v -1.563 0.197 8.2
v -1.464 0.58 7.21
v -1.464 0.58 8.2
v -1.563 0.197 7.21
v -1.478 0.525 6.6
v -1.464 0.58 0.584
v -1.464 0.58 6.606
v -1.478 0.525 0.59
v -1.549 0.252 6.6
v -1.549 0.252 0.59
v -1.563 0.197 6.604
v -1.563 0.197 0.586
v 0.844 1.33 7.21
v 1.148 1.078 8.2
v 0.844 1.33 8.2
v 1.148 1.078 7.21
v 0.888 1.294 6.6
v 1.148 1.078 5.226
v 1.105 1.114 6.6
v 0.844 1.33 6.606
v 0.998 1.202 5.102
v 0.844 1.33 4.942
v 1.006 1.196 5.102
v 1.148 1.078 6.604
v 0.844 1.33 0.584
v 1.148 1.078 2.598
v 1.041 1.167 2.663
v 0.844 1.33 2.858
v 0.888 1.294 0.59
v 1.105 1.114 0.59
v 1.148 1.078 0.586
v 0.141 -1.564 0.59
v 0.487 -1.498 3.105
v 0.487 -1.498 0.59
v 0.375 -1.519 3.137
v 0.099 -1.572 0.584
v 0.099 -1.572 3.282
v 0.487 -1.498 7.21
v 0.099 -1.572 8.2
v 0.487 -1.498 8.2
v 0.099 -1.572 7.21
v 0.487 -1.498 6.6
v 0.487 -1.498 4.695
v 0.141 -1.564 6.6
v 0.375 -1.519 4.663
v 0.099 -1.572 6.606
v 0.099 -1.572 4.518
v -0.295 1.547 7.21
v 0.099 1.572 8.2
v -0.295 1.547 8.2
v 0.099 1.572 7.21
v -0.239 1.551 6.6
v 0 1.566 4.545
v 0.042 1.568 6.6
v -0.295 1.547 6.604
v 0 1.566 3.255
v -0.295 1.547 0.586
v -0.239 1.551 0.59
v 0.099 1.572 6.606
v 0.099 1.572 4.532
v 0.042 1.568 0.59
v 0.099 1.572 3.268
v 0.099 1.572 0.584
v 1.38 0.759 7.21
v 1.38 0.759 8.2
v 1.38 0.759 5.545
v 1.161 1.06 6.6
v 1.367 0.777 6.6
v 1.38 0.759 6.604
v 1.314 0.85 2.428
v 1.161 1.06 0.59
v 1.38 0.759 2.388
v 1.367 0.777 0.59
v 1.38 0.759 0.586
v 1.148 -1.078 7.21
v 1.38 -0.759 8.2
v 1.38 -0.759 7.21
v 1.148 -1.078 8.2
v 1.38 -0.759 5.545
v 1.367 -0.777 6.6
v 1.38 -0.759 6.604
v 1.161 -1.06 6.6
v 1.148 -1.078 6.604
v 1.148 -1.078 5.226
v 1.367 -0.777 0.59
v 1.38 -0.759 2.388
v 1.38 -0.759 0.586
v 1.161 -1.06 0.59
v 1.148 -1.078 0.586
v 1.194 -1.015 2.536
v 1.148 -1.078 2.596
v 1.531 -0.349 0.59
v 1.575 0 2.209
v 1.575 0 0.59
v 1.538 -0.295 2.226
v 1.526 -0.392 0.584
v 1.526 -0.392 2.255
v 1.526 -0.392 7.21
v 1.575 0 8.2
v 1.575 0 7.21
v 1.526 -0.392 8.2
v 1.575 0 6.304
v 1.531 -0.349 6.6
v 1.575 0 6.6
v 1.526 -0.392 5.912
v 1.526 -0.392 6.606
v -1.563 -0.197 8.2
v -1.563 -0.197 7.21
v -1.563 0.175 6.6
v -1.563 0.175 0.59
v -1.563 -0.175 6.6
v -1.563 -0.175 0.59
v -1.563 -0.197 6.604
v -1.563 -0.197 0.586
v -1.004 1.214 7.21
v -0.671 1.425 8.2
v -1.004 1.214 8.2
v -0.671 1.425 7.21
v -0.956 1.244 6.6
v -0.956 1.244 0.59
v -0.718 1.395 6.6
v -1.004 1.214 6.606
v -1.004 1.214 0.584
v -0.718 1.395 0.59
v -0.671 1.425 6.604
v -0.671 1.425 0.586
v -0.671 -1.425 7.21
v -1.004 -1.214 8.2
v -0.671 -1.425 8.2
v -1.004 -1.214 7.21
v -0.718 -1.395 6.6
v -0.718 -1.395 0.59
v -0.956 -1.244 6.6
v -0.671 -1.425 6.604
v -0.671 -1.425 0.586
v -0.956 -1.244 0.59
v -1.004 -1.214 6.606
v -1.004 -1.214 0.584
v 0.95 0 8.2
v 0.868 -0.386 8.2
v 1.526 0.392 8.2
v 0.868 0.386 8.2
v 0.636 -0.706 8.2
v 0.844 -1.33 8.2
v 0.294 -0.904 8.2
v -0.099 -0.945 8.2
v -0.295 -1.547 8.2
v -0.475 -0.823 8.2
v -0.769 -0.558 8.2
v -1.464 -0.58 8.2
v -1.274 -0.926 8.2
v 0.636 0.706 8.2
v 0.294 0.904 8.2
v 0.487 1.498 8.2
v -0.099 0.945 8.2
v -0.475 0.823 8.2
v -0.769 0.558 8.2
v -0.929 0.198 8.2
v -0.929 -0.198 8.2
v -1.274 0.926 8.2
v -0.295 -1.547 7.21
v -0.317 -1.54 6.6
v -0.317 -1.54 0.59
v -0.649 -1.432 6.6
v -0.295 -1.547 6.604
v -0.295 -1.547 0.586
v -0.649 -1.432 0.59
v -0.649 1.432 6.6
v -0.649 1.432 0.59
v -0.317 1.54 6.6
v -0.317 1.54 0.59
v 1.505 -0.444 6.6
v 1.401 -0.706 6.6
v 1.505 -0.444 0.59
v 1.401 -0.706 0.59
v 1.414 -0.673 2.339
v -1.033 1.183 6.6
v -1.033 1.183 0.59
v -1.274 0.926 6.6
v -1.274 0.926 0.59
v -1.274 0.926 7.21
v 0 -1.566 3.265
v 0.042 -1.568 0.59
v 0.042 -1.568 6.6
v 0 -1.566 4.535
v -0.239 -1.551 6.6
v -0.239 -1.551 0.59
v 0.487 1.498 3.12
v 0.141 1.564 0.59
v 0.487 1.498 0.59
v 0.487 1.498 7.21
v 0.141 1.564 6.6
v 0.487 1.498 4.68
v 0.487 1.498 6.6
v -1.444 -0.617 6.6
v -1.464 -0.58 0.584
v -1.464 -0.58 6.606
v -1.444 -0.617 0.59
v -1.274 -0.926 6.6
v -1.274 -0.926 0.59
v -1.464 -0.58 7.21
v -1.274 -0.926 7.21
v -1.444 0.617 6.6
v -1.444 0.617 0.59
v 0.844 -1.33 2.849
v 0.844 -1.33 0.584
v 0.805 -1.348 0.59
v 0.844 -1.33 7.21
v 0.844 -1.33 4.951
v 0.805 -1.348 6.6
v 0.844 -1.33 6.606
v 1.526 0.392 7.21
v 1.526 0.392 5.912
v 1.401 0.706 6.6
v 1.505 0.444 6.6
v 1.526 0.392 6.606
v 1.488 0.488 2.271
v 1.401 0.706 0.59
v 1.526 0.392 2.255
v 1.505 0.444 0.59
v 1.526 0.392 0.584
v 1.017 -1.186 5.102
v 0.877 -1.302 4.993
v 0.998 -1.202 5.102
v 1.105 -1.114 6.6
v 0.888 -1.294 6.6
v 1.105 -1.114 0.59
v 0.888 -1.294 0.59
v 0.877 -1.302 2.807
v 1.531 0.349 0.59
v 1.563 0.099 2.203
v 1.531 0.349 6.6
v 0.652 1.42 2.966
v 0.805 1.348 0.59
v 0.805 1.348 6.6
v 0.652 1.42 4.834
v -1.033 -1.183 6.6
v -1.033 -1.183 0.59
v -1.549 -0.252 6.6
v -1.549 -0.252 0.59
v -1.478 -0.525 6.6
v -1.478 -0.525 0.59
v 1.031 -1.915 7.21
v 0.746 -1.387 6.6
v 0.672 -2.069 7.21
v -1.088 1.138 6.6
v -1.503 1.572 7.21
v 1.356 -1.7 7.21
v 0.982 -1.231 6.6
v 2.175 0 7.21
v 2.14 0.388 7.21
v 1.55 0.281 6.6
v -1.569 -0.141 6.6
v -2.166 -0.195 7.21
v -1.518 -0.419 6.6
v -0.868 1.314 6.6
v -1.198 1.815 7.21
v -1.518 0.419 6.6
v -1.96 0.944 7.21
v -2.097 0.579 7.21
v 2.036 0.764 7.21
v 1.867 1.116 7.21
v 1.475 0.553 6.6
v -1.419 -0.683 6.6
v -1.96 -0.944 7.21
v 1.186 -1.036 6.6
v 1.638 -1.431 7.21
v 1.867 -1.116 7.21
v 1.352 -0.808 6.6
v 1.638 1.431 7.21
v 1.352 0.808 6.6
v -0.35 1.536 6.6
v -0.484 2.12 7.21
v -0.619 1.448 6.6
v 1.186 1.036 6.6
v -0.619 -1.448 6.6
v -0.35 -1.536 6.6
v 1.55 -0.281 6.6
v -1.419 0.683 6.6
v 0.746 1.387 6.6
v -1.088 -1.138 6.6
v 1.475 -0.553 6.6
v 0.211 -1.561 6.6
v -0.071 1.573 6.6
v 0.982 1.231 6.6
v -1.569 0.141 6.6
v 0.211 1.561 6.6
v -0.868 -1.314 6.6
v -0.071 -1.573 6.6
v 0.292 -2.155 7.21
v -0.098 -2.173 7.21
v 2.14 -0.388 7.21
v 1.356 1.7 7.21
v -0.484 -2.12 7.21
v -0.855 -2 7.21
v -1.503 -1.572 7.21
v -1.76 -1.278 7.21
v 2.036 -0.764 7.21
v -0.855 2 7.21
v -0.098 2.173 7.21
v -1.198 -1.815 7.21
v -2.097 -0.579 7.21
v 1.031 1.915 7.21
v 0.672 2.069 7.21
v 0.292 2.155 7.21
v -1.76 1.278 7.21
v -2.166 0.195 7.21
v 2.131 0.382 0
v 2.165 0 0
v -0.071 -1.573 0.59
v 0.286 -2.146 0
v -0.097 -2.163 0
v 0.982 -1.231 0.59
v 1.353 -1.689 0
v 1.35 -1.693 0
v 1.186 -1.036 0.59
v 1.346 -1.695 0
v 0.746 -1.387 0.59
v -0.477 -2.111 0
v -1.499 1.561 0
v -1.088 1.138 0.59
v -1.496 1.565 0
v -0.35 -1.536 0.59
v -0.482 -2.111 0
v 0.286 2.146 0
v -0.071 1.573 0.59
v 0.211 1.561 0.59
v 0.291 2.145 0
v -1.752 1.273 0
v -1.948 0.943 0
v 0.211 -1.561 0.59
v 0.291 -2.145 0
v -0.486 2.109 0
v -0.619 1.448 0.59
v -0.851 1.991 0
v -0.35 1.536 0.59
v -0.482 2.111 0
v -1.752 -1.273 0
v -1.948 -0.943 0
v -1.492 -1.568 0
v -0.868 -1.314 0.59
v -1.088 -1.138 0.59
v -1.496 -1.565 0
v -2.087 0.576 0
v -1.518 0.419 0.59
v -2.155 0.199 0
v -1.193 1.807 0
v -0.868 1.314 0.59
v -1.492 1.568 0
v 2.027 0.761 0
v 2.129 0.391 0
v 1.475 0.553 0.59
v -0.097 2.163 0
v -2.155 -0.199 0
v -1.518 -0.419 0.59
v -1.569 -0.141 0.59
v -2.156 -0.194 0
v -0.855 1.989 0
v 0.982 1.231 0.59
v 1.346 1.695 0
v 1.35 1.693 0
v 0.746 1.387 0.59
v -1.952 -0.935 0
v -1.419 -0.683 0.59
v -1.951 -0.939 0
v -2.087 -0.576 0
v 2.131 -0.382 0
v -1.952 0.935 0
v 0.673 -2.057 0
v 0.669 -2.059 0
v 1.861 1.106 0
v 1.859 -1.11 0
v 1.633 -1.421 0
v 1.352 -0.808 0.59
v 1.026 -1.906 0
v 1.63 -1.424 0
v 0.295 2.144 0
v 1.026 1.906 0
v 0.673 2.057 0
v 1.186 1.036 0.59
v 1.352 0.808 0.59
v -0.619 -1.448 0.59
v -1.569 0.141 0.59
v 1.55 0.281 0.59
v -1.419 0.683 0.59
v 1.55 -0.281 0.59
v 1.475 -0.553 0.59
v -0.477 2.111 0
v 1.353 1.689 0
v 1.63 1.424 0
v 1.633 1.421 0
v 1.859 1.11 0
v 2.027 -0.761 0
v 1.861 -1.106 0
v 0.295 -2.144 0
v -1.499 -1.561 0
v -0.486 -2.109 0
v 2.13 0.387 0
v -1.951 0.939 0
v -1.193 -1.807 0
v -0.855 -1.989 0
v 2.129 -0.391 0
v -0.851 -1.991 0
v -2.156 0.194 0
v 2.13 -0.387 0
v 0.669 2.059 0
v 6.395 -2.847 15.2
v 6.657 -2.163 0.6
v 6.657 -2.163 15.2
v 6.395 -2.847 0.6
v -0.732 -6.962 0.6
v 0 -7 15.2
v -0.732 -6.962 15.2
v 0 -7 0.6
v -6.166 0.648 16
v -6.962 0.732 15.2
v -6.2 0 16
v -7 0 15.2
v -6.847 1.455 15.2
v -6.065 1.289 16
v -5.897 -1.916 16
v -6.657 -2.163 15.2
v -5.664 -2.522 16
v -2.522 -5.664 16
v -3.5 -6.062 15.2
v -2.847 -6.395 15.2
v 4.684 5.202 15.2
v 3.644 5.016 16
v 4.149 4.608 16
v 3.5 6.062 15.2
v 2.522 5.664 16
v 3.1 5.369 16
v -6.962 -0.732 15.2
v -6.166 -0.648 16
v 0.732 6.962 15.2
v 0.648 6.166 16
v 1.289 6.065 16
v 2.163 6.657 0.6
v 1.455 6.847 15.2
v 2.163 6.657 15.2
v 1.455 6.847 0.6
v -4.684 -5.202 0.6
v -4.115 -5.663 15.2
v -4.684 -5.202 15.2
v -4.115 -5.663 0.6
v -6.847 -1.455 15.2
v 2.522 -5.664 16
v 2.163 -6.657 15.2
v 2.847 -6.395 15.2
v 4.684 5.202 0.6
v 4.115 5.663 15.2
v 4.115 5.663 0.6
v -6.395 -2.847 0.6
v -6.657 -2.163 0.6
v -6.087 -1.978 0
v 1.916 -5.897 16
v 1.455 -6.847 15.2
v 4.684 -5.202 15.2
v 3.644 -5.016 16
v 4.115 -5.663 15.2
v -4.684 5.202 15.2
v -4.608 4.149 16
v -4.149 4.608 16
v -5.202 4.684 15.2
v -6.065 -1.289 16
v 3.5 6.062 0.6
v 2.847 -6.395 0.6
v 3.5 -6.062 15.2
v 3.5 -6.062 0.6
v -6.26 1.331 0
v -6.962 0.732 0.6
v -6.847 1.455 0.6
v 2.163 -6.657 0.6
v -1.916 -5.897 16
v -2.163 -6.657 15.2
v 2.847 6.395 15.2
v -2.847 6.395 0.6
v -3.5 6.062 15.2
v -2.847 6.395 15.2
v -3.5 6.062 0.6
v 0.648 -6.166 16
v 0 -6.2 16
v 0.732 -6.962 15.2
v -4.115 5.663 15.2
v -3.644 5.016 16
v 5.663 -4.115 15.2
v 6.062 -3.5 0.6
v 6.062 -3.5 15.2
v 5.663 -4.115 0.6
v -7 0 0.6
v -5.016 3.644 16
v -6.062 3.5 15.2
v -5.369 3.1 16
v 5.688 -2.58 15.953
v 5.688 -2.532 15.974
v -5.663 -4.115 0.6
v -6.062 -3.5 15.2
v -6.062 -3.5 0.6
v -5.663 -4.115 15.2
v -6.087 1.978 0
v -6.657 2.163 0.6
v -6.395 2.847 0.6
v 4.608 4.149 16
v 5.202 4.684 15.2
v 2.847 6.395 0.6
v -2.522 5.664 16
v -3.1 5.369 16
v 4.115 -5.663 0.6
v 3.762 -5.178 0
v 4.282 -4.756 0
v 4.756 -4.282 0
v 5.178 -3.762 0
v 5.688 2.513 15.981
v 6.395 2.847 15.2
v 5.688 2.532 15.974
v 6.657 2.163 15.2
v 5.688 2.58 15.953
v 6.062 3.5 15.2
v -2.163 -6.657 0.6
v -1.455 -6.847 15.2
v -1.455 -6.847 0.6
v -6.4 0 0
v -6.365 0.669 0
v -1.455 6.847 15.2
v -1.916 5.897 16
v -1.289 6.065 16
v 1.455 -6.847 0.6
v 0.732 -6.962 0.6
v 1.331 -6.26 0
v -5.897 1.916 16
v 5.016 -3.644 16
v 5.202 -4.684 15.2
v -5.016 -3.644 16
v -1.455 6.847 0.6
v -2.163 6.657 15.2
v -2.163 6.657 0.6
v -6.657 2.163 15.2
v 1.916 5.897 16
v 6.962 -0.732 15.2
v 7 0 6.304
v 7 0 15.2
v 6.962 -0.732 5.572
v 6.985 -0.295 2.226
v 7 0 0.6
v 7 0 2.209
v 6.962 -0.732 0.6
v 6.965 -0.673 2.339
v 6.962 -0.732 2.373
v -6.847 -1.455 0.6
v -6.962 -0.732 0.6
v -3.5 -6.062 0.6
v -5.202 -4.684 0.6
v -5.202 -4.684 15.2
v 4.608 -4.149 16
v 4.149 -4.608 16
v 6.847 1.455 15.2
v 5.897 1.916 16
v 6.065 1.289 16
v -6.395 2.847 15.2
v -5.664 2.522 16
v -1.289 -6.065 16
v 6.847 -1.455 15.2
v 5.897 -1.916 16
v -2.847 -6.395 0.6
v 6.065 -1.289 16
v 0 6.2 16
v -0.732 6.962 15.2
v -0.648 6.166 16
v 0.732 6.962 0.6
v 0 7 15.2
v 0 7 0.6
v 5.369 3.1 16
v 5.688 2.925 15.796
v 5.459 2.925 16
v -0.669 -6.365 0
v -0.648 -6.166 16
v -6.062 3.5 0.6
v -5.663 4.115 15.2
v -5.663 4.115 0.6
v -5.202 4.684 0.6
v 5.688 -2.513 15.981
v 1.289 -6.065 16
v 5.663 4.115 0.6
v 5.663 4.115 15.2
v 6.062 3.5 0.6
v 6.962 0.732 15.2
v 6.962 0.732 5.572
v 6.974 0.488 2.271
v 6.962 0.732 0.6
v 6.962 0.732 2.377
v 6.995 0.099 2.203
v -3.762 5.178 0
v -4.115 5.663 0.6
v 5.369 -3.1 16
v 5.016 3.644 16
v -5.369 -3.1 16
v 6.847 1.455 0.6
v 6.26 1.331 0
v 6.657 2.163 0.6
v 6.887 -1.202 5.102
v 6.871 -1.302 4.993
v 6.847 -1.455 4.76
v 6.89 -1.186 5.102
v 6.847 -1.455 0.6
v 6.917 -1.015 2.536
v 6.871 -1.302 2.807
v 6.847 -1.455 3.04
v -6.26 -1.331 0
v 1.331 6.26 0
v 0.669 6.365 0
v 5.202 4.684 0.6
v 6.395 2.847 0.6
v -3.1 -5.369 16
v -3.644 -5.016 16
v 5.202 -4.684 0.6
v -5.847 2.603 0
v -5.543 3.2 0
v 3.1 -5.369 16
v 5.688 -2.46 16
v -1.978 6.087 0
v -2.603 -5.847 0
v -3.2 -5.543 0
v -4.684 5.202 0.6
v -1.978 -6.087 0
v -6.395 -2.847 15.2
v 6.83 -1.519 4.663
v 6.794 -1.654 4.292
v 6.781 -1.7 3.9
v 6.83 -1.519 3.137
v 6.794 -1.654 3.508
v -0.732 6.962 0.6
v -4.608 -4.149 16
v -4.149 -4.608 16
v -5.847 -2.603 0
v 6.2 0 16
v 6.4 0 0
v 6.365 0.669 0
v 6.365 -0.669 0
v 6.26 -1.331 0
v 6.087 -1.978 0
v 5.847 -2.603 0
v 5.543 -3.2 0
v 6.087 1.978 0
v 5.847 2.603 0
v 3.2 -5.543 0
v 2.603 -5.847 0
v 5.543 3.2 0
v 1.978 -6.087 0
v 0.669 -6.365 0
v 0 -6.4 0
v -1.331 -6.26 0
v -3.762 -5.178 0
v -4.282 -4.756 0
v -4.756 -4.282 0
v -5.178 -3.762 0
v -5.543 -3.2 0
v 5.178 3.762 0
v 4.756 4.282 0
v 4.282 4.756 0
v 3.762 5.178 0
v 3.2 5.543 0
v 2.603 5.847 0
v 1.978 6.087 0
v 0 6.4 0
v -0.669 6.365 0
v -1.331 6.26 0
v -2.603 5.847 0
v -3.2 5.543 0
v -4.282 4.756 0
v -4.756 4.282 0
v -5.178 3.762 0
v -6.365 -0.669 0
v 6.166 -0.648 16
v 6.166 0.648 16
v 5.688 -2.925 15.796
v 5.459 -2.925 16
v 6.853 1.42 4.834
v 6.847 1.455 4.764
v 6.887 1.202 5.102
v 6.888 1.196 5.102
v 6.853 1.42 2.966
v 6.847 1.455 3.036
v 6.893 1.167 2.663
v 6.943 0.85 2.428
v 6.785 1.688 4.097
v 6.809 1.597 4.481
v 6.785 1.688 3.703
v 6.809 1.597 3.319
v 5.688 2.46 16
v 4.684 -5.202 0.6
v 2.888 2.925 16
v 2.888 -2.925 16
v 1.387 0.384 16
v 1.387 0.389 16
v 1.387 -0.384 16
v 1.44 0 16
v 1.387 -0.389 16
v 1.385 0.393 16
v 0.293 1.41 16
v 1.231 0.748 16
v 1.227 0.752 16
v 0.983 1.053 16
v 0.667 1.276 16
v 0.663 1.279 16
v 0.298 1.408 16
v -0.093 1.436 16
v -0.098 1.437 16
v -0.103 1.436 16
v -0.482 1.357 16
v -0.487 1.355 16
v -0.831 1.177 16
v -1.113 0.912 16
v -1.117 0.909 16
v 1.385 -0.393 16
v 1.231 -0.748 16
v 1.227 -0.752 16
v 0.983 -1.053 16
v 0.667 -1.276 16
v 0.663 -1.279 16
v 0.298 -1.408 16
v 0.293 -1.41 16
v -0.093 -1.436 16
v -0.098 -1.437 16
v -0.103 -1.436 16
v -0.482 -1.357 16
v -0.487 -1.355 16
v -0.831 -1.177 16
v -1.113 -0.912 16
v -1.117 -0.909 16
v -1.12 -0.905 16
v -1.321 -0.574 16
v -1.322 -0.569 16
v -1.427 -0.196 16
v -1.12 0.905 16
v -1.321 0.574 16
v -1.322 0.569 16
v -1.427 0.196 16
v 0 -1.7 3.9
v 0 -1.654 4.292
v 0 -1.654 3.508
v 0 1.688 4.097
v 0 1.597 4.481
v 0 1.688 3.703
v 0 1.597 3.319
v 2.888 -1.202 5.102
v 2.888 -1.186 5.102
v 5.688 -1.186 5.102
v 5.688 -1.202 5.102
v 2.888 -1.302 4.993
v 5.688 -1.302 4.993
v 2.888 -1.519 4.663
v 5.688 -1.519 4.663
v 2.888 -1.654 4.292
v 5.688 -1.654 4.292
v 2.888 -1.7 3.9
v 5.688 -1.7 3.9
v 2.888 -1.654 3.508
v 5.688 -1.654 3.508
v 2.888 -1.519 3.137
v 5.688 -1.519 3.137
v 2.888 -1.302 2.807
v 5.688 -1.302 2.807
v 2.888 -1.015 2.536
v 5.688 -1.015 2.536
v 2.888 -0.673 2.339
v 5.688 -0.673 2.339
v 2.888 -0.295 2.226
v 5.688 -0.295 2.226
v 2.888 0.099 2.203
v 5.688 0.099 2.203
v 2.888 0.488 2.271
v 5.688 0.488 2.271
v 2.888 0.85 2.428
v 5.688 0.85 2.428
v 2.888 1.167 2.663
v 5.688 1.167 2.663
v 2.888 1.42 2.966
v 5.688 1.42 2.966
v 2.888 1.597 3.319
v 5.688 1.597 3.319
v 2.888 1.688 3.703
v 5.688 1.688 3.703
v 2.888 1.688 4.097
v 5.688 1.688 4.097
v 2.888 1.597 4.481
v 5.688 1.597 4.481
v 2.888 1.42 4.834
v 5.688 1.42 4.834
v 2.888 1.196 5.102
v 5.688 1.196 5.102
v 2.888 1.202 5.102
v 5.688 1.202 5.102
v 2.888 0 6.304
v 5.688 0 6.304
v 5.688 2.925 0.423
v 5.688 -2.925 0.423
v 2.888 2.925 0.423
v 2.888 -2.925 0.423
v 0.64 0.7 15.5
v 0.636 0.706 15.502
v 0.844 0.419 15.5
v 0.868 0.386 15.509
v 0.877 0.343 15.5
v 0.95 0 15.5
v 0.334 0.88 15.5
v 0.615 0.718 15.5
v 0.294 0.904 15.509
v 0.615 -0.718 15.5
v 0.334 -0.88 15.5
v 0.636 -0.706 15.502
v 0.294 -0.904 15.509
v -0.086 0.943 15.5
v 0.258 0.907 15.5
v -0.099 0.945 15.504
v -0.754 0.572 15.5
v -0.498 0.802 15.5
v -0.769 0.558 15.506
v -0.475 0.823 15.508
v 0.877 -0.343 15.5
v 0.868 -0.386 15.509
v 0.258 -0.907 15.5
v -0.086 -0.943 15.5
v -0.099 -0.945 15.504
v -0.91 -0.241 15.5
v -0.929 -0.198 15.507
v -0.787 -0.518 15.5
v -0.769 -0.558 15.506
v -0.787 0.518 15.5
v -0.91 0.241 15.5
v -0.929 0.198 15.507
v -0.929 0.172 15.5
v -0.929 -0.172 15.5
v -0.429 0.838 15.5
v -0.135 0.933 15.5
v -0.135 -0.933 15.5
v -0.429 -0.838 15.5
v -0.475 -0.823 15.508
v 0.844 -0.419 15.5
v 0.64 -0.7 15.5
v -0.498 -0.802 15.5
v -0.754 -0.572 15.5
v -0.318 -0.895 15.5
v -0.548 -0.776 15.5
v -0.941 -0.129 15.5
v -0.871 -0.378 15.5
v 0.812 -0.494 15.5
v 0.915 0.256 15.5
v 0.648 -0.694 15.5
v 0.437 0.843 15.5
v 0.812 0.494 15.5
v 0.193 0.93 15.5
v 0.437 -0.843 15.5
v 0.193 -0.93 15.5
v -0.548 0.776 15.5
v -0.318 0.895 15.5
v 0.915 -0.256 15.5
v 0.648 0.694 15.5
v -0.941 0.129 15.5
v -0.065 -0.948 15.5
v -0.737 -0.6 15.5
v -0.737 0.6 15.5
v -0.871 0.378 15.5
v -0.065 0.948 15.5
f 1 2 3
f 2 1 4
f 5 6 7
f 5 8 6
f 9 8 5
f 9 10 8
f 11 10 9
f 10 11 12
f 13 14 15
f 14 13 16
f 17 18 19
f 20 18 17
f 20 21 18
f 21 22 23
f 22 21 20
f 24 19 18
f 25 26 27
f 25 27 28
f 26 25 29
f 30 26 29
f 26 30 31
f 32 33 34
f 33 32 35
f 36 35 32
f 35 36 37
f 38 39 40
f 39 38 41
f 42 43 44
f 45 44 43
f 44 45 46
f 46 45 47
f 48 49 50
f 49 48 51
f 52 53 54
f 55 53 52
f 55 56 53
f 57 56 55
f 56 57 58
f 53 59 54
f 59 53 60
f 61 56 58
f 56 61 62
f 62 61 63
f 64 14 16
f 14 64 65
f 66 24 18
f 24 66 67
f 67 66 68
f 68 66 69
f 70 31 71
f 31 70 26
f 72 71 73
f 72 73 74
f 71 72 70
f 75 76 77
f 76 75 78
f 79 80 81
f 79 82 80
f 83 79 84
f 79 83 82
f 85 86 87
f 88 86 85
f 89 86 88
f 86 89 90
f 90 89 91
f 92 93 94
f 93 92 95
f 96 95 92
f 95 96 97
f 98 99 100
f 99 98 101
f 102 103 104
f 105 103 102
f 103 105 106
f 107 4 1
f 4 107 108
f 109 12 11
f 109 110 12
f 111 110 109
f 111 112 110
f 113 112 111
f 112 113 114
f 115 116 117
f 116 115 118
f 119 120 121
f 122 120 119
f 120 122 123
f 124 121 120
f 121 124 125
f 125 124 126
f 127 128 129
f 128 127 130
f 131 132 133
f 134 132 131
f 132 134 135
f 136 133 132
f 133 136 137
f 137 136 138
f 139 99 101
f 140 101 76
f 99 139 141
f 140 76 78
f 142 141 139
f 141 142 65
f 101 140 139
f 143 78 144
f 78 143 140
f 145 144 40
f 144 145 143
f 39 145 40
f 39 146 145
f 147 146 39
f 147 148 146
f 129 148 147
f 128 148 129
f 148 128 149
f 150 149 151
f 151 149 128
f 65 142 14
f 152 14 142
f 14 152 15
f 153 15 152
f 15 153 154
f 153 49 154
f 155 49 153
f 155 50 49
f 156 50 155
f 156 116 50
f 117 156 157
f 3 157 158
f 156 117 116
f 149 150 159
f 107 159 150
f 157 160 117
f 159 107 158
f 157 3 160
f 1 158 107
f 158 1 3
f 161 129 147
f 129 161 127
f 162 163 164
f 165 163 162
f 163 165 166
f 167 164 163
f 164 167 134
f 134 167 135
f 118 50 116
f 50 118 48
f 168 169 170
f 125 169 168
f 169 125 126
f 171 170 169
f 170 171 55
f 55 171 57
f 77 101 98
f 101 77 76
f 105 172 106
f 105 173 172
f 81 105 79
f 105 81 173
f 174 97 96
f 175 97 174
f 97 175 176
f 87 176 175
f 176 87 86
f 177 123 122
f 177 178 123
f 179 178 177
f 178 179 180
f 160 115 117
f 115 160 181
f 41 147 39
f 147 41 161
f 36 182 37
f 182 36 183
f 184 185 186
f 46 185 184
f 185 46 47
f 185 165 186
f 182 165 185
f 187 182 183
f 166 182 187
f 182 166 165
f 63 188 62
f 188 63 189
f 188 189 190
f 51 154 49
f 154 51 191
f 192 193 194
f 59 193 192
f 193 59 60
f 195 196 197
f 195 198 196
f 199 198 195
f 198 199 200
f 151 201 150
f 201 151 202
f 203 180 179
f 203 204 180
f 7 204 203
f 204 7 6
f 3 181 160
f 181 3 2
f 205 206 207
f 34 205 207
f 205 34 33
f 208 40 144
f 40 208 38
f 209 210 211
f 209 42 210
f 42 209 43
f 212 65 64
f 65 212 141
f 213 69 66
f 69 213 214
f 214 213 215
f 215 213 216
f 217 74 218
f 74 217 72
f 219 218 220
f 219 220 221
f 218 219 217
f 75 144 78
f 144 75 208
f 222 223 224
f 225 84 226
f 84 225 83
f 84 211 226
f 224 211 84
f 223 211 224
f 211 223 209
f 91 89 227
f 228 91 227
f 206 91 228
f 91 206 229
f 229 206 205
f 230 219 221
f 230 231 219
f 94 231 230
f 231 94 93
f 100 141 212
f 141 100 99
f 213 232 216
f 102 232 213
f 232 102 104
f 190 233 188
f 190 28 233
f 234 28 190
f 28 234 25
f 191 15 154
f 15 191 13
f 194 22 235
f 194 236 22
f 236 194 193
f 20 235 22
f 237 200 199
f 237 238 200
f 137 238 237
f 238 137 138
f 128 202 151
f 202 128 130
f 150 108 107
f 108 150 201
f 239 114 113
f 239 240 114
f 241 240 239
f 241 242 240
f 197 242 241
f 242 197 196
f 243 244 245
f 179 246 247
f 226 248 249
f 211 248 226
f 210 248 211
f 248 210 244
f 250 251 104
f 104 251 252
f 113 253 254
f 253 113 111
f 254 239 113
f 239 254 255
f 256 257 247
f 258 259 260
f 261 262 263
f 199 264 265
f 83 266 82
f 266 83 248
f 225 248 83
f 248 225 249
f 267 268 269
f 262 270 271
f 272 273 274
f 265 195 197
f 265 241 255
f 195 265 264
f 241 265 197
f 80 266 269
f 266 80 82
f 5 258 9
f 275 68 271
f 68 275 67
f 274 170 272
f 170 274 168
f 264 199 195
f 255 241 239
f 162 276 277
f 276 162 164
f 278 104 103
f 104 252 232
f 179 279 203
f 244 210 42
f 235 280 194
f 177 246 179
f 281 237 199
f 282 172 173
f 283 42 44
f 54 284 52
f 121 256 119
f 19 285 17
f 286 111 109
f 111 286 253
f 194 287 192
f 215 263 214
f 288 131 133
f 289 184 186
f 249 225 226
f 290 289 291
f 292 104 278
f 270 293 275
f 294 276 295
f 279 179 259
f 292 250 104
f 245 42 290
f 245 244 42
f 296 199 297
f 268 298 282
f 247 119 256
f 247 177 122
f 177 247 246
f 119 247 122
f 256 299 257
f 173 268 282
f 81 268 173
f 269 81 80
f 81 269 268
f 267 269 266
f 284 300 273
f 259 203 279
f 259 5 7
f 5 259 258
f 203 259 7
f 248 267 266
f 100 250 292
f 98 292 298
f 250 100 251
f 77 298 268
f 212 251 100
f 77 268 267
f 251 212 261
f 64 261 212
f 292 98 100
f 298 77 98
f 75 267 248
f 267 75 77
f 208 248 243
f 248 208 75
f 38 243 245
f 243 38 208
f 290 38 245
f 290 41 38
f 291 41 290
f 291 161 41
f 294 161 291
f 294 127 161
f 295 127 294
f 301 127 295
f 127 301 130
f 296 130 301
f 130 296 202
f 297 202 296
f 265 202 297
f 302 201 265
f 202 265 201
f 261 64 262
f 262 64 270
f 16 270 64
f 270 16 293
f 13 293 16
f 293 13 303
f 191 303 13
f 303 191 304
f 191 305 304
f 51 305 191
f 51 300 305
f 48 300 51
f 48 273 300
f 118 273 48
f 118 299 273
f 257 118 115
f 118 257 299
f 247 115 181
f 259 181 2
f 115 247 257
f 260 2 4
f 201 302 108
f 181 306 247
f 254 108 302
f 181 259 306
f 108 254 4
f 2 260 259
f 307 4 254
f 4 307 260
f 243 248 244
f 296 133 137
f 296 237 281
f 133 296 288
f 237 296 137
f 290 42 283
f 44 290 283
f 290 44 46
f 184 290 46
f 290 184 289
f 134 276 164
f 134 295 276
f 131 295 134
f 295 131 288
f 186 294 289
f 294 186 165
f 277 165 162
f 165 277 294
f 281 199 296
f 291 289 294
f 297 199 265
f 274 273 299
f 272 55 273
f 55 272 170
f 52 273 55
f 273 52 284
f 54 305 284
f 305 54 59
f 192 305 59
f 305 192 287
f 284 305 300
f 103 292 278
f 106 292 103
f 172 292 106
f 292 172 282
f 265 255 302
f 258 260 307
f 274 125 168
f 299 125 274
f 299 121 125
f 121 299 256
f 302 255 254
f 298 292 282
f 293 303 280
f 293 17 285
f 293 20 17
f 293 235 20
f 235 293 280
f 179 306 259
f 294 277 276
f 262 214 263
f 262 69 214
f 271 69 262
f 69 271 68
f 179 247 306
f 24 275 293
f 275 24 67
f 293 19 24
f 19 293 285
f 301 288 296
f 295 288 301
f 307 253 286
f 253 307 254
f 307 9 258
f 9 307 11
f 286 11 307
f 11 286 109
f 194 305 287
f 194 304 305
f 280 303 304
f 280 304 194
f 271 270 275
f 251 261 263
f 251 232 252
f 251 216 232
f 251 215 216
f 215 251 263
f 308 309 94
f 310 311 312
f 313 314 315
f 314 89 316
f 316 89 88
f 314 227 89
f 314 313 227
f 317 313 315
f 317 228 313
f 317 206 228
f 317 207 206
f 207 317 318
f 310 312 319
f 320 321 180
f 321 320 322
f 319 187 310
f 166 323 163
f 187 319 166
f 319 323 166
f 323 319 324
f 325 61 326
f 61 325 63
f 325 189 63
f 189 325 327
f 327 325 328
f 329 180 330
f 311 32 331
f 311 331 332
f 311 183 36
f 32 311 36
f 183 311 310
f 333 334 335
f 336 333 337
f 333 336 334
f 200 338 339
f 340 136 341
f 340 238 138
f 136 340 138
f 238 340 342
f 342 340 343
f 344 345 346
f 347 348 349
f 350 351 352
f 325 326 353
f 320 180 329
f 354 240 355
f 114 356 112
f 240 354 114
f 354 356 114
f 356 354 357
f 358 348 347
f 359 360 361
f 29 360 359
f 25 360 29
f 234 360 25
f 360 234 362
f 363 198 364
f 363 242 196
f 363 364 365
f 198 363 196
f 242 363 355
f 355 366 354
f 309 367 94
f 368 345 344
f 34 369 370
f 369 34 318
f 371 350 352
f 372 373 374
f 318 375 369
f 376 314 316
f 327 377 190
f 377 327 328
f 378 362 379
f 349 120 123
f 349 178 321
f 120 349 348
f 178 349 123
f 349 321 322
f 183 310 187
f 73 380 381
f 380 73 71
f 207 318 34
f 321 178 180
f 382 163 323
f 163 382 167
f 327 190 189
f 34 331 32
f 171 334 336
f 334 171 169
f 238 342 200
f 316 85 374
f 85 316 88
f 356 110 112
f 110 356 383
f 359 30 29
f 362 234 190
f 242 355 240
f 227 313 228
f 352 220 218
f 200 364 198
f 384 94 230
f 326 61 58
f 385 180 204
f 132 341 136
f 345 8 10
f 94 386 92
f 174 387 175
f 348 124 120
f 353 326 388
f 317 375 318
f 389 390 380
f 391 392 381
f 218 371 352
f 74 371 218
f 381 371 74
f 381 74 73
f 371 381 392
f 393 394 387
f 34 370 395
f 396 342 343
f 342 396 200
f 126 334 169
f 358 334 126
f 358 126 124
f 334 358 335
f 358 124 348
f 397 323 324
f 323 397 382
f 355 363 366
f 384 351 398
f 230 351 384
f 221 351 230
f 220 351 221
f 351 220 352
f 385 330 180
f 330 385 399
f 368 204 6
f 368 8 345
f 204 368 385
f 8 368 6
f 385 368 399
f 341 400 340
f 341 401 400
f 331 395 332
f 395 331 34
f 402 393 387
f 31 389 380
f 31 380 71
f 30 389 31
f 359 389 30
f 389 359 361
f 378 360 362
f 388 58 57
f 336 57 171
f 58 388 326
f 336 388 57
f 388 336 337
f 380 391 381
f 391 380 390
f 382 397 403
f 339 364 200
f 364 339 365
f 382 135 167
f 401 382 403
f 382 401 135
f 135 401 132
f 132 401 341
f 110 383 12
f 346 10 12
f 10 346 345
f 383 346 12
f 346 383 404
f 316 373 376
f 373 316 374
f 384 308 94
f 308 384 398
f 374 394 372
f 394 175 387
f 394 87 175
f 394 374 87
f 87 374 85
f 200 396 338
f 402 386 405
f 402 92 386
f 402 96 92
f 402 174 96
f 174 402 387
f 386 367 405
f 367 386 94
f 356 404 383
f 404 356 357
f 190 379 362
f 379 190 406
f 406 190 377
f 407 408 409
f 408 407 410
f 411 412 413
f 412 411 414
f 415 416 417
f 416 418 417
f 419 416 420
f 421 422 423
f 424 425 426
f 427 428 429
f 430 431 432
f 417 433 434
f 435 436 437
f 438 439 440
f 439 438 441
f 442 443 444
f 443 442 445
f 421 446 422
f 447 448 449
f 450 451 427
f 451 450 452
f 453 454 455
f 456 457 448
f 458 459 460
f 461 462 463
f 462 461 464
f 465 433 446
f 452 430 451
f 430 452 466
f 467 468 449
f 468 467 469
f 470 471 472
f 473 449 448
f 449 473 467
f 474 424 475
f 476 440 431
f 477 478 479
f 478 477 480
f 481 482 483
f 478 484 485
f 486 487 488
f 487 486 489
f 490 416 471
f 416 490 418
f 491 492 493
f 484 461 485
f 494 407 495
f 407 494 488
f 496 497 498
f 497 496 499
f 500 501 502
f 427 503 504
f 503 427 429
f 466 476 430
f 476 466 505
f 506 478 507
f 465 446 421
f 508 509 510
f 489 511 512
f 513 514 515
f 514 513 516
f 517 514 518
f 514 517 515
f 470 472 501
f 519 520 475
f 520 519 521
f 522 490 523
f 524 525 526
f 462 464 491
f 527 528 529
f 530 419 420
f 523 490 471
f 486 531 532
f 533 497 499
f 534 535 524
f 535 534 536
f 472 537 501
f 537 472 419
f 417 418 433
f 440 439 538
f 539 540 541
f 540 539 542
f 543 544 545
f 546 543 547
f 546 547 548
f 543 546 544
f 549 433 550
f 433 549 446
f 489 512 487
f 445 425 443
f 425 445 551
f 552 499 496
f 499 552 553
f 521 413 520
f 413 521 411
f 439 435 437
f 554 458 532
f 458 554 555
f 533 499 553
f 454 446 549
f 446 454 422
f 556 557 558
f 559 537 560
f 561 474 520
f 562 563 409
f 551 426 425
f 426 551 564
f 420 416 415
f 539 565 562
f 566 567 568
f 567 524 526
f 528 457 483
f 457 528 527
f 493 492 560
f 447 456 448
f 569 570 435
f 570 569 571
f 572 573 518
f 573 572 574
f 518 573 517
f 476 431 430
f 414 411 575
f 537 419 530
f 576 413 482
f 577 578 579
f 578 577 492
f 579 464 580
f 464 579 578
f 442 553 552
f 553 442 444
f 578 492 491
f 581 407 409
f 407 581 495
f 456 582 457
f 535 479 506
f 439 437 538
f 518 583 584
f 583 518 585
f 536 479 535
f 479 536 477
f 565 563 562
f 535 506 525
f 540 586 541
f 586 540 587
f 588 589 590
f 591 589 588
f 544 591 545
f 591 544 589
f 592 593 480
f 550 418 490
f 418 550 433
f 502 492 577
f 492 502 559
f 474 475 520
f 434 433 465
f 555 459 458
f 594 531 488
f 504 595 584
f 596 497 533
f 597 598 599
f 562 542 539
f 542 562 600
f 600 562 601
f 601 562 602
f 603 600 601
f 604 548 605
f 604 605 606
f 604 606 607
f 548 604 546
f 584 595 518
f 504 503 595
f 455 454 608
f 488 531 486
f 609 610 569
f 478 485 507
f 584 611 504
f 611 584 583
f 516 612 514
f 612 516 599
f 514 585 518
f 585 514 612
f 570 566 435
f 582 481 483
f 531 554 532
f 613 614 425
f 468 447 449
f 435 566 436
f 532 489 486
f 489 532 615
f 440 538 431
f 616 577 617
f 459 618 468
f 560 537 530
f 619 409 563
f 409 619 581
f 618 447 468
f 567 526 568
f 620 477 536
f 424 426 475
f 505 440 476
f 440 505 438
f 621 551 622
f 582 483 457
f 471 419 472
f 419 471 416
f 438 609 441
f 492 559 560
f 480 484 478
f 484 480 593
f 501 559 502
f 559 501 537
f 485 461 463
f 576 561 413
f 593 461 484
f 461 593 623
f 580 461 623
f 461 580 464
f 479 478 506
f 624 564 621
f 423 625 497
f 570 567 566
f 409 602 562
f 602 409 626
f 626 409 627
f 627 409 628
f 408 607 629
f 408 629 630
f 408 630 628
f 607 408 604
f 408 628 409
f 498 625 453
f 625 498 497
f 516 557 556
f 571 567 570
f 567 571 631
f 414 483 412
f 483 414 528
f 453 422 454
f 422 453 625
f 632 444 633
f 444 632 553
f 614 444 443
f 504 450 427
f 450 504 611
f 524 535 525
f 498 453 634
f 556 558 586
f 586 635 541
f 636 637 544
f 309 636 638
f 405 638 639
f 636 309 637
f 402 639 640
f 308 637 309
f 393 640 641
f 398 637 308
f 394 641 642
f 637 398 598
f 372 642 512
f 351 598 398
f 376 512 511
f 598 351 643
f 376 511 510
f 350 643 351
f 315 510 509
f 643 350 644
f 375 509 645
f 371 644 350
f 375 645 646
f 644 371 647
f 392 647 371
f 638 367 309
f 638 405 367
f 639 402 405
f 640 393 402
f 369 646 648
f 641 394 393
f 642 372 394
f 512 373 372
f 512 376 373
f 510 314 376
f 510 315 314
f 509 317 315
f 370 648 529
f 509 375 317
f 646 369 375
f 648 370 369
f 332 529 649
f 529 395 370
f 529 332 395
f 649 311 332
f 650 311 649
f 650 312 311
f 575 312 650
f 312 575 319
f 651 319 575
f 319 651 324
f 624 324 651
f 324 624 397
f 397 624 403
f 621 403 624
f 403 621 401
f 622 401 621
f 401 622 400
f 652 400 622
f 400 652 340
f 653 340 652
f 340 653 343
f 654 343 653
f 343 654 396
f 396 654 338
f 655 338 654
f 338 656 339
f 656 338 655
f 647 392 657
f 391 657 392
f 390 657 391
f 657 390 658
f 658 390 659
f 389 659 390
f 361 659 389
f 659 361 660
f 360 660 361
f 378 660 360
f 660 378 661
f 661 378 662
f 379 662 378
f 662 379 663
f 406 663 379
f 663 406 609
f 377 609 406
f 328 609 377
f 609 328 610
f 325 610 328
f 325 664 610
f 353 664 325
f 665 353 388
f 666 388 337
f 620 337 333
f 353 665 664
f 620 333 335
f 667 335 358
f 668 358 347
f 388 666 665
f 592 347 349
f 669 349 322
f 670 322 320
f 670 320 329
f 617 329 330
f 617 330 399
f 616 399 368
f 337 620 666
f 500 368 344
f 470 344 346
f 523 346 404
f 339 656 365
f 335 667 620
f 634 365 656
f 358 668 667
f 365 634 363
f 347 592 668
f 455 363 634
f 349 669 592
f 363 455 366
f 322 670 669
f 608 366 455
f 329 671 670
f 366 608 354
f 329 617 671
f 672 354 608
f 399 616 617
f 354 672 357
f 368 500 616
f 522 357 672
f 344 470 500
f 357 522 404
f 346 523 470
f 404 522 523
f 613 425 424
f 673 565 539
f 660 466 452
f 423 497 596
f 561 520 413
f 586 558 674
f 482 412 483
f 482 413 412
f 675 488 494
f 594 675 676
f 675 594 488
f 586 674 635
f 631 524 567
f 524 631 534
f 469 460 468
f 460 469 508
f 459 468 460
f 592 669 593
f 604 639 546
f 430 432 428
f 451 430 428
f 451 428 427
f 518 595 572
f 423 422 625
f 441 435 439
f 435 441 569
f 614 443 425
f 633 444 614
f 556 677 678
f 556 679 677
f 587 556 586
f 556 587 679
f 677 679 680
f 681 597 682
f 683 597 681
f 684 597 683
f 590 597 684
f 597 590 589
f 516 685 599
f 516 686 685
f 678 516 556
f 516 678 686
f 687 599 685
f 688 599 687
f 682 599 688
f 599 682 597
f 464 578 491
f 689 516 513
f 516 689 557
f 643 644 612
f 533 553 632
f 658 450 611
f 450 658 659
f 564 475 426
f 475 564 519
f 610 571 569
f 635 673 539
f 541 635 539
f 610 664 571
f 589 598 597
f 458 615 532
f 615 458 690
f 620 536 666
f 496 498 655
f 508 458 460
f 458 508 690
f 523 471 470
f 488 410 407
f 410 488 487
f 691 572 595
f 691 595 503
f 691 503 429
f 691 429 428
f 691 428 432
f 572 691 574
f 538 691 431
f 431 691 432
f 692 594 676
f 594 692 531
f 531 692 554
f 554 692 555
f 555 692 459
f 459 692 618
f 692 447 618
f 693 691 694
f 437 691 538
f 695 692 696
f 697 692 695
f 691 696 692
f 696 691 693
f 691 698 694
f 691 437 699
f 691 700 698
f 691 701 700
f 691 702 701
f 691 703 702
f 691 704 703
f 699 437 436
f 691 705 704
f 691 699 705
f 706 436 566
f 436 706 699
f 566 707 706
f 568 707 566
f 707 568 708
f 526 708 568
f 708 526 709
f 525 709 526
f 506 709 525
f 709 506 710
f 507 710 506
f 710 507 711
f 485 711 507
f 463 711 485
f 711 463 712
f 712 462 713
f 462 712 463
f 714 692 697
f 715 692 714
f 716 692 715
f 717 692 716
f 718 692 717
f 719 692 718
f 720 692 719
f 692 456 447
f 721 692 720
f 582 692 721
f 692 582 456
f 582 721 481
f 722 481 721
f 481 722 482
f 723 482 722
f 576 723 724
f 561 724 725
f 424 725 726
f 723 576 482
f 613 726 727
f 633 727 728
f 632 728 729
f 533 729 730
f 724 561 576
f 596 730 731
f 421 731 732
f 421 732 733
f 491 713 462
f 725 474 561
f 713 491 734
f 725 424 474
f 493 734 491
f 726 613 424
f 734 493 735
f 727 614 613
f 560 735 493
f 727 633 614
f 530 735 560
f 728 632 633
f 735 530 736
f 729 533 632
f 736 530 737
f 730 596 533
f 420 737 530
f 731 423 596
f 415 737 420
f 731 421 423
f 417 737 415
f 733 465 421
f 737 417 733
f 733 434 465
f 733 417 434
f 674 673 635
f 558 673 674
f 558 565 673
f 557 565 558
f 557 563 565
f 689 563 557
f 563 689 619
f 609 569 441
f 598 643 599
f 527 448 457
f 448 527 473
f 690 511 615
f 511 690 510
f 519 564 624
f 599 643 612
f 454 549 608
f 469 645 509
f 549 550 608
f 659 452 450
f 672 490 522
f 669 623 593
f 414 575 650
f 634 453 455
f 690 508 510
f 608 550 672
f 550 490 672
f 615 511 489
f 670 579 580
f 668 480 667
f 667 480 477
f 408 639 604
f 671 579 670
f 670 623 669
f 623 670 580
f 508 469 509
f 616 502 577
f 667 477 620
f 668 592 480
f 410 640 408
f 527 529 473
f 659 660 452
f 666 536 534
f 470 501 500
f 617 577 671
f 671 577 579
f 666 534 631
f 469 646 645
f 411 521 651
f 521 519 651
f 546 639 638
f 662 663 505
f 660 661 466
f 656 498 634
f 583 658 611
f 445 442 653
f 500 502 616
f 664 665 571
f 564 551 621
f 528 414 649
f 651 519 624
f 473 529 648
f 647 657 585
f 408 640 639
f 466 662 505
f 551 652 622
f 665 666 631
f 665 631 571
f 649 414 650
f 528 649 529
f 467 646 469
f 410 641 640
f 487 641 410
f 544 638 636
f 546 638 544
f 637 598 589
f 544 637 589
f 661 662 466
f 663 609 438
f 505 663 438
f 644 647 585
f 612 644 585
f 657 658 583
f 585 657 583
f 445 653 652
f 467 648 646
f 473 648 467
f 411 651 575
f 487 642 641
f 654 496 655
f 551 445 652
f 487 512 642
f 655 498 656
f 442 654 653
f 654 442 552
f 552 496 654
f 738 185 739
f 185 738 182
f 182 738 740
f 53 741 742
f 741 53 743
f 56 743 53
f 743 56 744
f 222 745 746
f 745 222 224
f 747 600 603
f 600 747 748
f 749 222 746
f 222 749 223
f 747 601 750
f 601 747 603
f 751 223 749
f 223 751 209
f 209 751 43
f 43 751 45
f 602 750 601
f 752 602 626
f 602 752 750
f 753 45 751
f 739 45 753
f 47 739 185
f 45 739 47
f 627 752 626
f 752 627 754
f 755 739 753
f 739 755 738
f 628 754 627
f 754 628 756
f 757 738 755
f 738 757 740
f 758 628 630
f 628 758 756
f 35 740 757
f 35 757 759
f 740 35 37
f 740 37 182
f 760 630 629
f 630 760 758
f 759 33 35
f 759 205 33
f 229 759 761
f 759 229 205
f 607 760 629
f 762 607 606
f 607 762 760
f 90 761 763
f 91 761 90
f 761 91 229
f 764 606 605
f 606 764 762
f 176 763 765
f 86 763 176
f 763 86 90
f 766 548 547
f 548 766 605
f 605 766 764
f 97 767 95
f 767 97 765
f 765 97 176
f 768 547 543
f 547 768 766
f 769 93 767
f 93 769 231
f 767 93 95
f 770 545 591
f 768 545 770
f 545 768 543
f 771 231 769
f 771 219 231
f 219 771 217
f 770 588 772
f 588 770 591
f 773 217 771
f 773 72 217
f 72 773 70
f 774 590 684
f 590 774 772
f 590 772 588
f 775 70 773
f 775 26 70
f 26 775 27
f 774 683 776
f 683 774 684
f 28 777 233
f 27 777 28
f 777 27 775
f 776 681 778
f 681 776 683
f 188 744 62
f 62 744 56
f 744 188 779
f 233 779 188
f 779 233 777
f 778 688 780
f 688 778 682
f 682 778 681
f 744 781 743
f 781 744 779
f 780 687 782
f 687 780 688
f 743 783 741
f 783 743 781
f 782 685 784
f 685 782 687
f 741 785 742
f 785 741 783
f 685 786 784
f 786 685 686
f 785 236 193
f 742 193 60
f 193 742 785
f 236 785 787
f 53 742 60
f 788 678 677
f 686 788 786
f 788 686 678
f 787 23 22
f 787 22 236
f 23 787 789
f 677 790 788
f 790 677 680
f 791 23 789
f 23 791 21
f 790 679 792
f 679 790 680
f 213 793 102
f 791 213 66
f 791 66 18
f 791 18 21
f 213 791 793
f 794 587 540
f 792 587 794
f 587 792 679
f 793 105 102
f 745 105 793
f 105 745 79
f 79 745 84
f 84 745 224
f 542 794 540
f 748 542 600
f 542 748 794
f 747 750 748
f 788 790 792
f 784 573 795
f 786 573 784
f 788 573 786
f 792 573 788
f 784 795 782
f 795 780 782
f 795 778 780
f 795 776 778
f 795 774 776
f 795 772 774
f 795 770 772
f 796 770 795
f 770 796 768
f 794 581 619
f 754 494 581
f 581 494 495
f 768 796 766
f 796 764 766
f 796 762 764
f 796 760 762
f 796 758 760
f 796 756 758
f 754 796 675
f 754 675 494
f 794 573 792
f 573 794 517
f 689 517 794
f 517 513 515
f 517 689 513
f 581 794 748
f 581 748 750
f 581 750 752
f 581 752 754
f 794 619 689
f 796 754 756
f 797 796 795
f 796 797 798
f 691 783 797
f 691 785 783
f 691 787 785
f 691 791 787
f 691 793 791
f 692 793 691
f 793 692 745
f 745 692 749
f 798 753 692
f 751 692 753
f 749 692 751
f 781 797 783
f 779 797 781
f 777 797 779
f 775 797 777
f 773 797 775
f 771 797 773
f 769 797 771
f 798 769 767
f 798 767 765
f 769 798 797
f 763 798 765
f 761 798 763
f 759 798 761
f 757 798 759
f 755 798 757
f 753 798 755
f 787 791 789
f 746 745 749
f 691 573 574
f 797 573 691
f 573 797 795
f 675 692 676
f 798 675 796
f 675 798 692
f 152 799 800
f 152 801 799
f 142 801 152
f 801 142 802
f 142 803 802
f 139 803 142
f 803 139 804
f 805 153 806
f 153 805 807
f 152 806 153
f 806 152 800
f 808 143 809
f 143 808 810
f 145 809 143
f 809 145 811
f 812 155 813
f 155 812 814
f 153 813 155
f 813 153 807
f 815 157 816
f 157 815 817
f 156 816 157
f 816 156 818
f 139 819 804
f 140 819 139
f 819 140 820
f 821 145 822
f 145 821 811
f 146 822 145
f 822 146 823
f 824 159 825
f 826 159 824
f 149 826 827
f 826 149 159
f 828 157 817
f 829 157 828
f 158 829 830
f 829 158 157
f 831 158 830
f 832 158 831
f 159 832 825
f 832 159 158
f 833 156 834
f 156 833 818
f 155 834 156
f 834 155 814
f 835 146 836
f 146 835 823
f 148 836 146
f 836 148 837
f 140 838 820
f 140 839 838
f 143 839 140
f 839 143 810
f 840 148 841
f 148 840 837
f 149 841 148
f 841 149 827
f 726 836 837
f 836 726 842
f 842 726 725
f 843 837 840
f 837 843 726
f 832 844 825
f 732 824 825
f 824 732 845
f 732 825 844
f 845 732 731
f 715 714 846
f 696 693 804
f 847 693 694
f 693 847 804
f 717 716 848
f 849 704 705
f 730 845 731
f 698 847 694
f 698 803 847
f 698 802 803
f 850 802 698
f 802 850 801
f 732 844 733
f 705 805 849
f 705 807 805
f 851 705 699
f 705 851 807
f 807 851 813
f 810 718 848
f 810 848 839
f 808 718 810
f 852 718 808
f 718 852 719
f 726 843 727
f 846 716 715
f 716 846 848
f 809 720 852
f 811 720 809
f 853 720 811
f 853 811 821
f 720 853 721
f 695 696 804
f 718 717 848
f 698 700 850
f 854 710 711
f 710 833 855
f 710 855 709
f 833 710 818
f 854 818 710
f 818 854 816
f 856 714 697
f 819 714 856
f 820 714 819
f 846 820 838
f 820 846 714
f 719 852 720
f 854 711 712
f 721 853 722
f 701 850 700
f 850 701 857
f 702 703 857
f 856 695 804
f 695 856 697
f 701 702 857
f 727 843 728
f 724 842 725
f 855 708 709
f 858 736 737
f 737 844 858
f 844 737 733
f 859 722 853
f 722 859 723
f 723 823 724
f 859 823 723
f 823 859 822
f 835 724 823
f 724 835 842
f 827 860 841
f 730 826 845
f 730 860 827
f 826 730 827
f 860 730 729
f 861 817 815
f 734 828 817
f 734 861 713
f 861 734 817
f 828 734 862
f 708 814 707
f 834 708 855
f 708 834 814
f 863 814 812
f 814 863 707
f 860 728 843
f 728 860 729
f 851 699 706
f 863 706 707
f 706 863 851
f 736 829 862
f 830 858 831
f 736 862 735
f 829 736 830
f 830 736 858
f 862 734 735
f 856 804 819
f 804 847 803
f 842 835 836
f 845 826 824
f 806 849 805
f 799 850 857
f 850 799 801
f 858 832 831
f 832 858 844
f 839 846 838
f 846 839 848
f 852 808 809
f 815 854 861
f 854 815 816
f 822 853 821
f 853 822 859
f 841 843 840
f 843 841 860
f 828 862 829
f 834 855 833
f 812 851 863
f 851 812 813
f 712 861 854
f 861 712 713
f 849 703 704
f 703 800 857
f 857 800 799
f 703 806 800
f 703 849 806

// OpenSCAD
// file: ../stem_core.scad
// =====================================================================
//  stem_core.scad — shared geometry helpers for every STEM_KIT part.
// =====================================================================
include <../PARAMETERS/config.scad>
// =====================================================================

// ---------- rounded / chamfered prisms --------------------------------

// Rounded rectangle (2D), centred.
module rrect(size, r) {
    rr = min(r, min(size[0], size[1]) / 2 - 0.01);
    offset(r = rr) square([size[0] - 2 * rr, size[1] - 2 * rr], center = true);
}

// Box with rounded vertical edges, chamfered bottom edge (elephant-foot
// relief) and rounded-ish (chamfered) top edge. Sits on z = 0, centred XY.
module rbox(size, r = 2, top = edge_r, bottom = chamfer) {
    h = size[2];
    hull() {
        linear_extrude(0.01) rrect([size[0] - 2 * bottom, size[1] - 2 * bottom], max(r - bottom, 0.1));
        translate([0, 0, bottom]) linear_extrude(h - bottom - top) rrect([size[0], size[1]], r);
        translate([0, 0, h - 0.01]) linear_extrude(0.01) rrect([size[0] - 2 * top, size[1] - 2 * top], max(r - top, 0.1));
    }
}

// Cylinder with chamfered/rounded top and bottom edges (safe hubs, knobs).
module rcyl(d, h, top = edge_r, bottom = chamfer) {
    rotate_extrude() polygon([
        [0, 0], [d / 2 - bottom, 0], [d / 2, bottom],
        [d / 2, h - top], [d / 2 - top, h], [0, h]
    ]);
}

// Stadium (slot / rounded bar) 2D between two points on the X axis.
module stadium2d(len, w) {
    hull() { circle(d = w); translate([len, 0]) circle(d = w); }
}

// ---------- holes ------------------------------------------------------

// Vertical through hole with small top/bottom chamfers.
module vhole(d = grid_hole_d, h = 50, ch = 0.4) {
    translate([0, 0, -h / 2]) cylinder(d = d, h = h);
}

// Horizontal hole along +Y, printable without supports (teardrop tip up).
module teardrop_y(d, len, center = true) {
    translate([0, center ? -len / 2 : 0, 0]) rotate([-90, 0, 0])
        linear_extrude(len) teardrop2d(d);
}
module teardrop_x(d, len, center = true) {
    translate([center ? -len / 2 : 0, 0, 0]) rotate([0, 90, 0]) rotate([0, 0, -90])
        linear_extrude(len) teardrop2d(d);
}
// 2D teardrop: circle + 45° roof pointing "up" in the final part (+Z).
// After rotate([-90,0,0]) local +Y becomes -Z, so the roof points to -Y here.
module teardrop2d(d) {
    r = d / 2;
    union() {
        circle(d = d);
        polygon([[-r * sqrt(2) / 2, -r * sqrt(2) / 2], [0, -r * sqrt(2)], [r * sqrt(2) / 2, -r * sqrt(2) / 2]]);
    }
}

// Hex nut pocket (flat sides parallel to X), opening at z = 0 going +Z.
module nut_pocket(depth = nut_pocket_depth, af = nut_pocket_af) {
    cylinder(d = af / cos(30), h = depth, $fn = 6);
}

// Side-entry nut slot: nut plane is XY, slot opens toward +dir (X).
// Centred on the screw axis (Z), slot height nut_slot_t, runs out `len`.
module nut_slot_x(len = 10, af = nut_pocket_af, t = nut_slot_t) {
    translate([0, 0, -t / 2]) hull() {
        cylinder(d = af / cos(30), h = t, $fn = 6);
        translate([len, 0, 0]) cylinder(d = af / cos(30), h = t, $fn = 6);
    }
}

// Counterbored clearance hole from top surface at height `top` downward.
module cbore(top, depth, d = counterbore_d) {
    translate([0, 0, top - depth]) cylinder(d = d, h = depth + 20);
    translate([0, 0, -20]) cylinder(d = grid_hole_d, h = top + 40);
}

// Grid of vertical holes: nx x ny, pitch grid_pitch, first hole centred
// at `origin` (XY). Used by every plate.
module grid_holes(nx, ny, origin = [0, 0], h = 100, d = grid_hole_d) {
    for (i = [0 : nx - 1], j = [0 : ny - 1])
        translate([origin[0] + i * grid_pitch, origin[1] + j * grid_pitch, 0]) vhole(d, h);
}

// Slot (for adjustable mounting) along X, length = travel.
module slot_x(travel, d = grid_hole_d, h = 100) {
    translate([-travel / 2, 0, -h / 2]) linear_extrude(h) stadium2d(travel, d);
}

// ---------- shaft bores ------------------------------------------------

// 2D bore profile: round, or D if shaft_flat > 0.
module bore2d(d) {
    if (shaft_flat > 0)
        intersection() { circle(d = d); translate([-d, -d / 2]) square([2 * d, d - shaft_flat + (d - shaft_diameter) / 2]); }
    else circle(d = d);
}

// Standard HUB: cylinder hub_d x hub_h standing on z = z0, with bore,
// radial M3 set screw at mid height and a captive-nut slot from the top.
// Call inside difference() for the cut-outs: hub_body()/hub_cuts().
module hub_body(z0, d = hub_d, h = hub_h) {
    translate([0, 0, z0]) rcyl(d, h, top = 0.8, bottom = 0);
}
module hub_cuts(z0, total_h, d = hub_d, h = hub_h, bore = shaft_fixed_bore, set_screw = true, screw_angle = 0) {
    // bore through everything
    translate([0, 0, -1]) linear_extrude(total_h + 2) bore2d(bore);
    // entry chamfer on bore
    translate([0, 0, total_h - 0.6]) cylinder(d1 = bore, d2 = bore + 1.2, h = 0.61);
    translate([0, 0, -0.01]) cylinder(d1 = bore + 1.2, d2 = bore, h = 0.6);
    if (set_screw) rotate([0, 0, screw_angle]) {
        zs = z0 + h / 2;
        // radial screw hole (teardrop, prints without support)
        translate([0, 0, zs]) teardrop_x(screw_clear_d, d, center = false);
        // captive nut slot, entered from the hub top face
        nr = bore / 2 + (d / 2 - bore / 2) / 2;       // radial position of nut
        translate([nr - nut_slot_t / 2, -nut_pocket_af / 2, zs - nut_pocket_af / cos(30) / 2 - 0.1])
            cube([nut_slot_t, nut_pocket_af, total_h + 10]);   // open to the hub top face
    }
}

// ---------- labels -----------------------------------------------------

// Engrave text into a top surface at height z (depth 0.6 = 3 layers).
module engrave(txt, size = 5, z = 0, depth = 0.6, halign = "center") {
    translate([0, 0, z - depth]) linear_extrude(depth + 1)
        text(txt, size = size, font = "Liberation Sans:style=Bold", halign = halign, valign = "center");
}

// ---------- misc -------------------------------------------------------

function grid_snap(v) = ceil(v / grid_pitch) * grid_pitch;
// file: ../../PARAMETERS/config.scad
// =====================================================================
//  STEM_KIT — CENTRAL PARAMETER FILE  ("ForgeGrid" mechanical standard)
// ---------------------------------------------------------------------
//  Every part in the library includes this file. Change a value here,
//  run `python3 tools/build.py`, and the whole library regenerates.
//  All dimensions in millimetres.
// =====================================================================

// ---------------------------------------------------------------------
// 1. PRINTER / PROCESS
// ---------------------------------------------------------------------
nozzle          = 0.4;
layer_height    = 0.2;
tolerance       = 0.2;    // sliding clearance per side (tune with STEM_TOLERANCE_TEST)
press_allow     = 0.05;   // extra for press fits (bores that should grip)
min_wall        = 1.6;    // never go below this
wall_thickness  = 2.4;    // preferred wall (6 perimeters @ 0.4)
edge_r          = 1.0;    // rounding of exposed edges (child safety)
chamfer         = 0.6;    // bottom-edge chamfer (elephant-foot relief)

$fa = 6;                  // facet angle
$fs = 0.4;                // facet size

// ---------------------------------------------------------------------
// 2. GRID  (the heart of the ecosystem)
// ---------------------------------------------------------------------
//  Holes sit on a 10 mm lattice, 5 mm in from every plate edge, so
//  plates placed side by side keep one continuous lattice.
grid_pitch            = 10;
plate_size            = 100;   // universal base plate (square)
plate_thickness       = 6;     // base plates, rails, chassis
foot_thickness        = 4;     // flange / foot of every mount
//  => standard joint: 4 mm foot + 6 mm plate = M3 x 10 screw, nut in
//     the hex pocket under the plate. One screw length does 90 % of joints.

// ---------------------------------------------------------------------
// 3. FASTENERS (M3 everywhere: one screwdriver, one nut)
// ---------------------------------------------------------------------
screw_size            = 3;
screw_clear_d         = 3.4;   // clearance hole (also the grid hole)
grid_hole_d           = screw_clear_d;
screw_tap_d           = 2.6;   // hole a screw self-taps into
screw_head_d          = 5.7;   // ISO 7380 BUTTON head = kit standard (low, rounded, child-safe)
screw_head_h          = 1.65;
counterbore_d         = 6.4;
nut_af                = 5.5;   // M3 nut across flats
nut_thick             = 2.4;
nut_pocket_af         = nut_af + 0.35;
nut_pocket_depth      = 3.0;   // pocket under plates (nut sits flush)
nut_slot_t            = nut_thick + 0.4;  // side-entry slot thickness
set_screw_len         = 6;     // M3 x 6 grub screw for hubs

// ---------------------------------------------------------------------
// 4. SHAFTS
// ---------------------------------------------------------------------
//  Default: 3 mm steel rod (silver steel / stainless). Printed shafts
//  are provided for light-duty use. Alternative systems: set
//  shaft_diameter = 4 or 5 and rebuild.
shaft_diameter        = 3;
shaft_flat            = 0;     // >0 : D-shaft, flat depth (e.g. 0.5)
shaft_fixed_bore      = shaft_diameter + 0.15;  // hub bore (set-screw locked)
shaft_free_bore       = shaft_diameter + 0.4;   // free-spinning bore / bushing
shaft_lengths         = [40, 60, 80, 100, 120];

//  Horizontal shafts: all pillow blocks, motor mounts and axle mounts
//  put their axis at this height above the surface they are bolted to,
//  so any two of them on the grid are automatically coaxial/parallel.
axis_height           = 17;
axis_height_high      = 37;    // = axis_height + 2 pitches (pulleys, big wheels)

// ---------------------------------------------------------------------
// 5. BEARINGS
// ---------------------------------------------------------------------
bearing_size          = [5, 16, 5];   // 625 : bore, OD, width (default housing)
bearing_small         = [3, 10, 4];   // 623 : fits 3 mm shafts via adapter ring
bearing_pocket_d      = bearing_size[1] + 0.15;

// ---------------------------------------------------------------------
// 6. GEARS
// ---------------------------------------------------------------------
//  Module 2 + tooth counts that are multiples of 10  =>  centre distance
//  = (z1+z2) mm is ALWAYS a multiple of 10  =>  ANY two gears mesh when
//  their shafts sit in grid holes. (3-4-5 diagonals also work: 50 mm.)
gear_module           = 2;
gear_pressure_angle   = 20;
gear_width            = 6;
gear_backlash         = 0.30;  // total circular backlash per mesh
gear_clearance_k      = 0.25;  // root clearance = k * module
gear_teeth_set        = [10, 20, 30, 40];
//  Gearbox frame: two frame plates, outer faces 60 mm apart (on grid),
//  48 mm gap = three gear levels (A, M, B).
frame_gap             = 48;
hub_d                 = 14;
hub_h                 = 7;

// ---------------------------------------------------------------------
// 7. WHEELS / PULLEYS
// ---------------------------------------------------------------------
wheel_diameter        = 60;
wheel_width           = 10;
axle_diameter         = shaft_diameter;
oring_cs              = 3.0;    // O-ring cross-section used as tyre / belt
belt_cs               = 2.5;    // O-ring / round-belt cord for pulleys
pulley_sizes          = [20, 40, 60];  // effective (belt-line) diameters

// ---------------------------------------------------------------------
// 8. MOTORS (130-size toy / solar motor is the default)
// ---------------------------------------------------------------------
motor_size            = [20.2, 15.2, 25.2]; // body dia, across-flats, length
motor_d               = motor_size[0];
motor_flat            = motor_size[1];
motor_len             = motor_size[2];
motor_boss_d          = 6.2;
motor_boss_h          = 1.6;
motor_shaft_d         = 2.0;
motor_shaft_len       = 8.5;   // beyond boss
motor_shaft_bore      = 1.9;   // press fit onto 2 mm motor shaft

// ---------------------------------------------------------------------
// 9. SOLAR PANEL (bought, not printed) — frame is parametric
// ---------------------------------------------------------------------
solar_panel_size      = [110, 69, 3.0];  // 5 V 1 W epoxy panel (common)
solar_panel_clear     = 0.6;

// ---------------------------------------------------------------------
// 10. ELECTRONICS
// ---------------------------------------------------------------------
mounting_hole_spacing = grid_pitch;   // everything bolts to the grid
electronics_slot_w    = screw_clear_d;
led_hole_d            = 5.1;
buzzer_hole_d         = 12.2;

// ---------------------------------------------------------------------
// 11. SAFETY LIMITS (checked by tools/qc.py)
// ---------------------------------------------------------------------
max_part_voltage      = 12;    // nothing in this kit uses more
min_rim_thickness     = 2.0;   // blades/links: no edge thinner than this
finger_gap_max        = 6;     // guard openings smaller than a child's finger
// main file
// =====================================================================
//  PART: motor coupler — COMMON/connectors
//  Joins a 2 mm motor shaft (press fit, top) to a 3 mm kit shaft
//  (set screw, bottom). Lets any motor drive any kit shaft, and lets a
//  motor be used as a generator from a kit shaft.
//  Print: standing, 3 mm bore down. No supports.
// =====================================================================
include <../../PARAMETERS/config.scad>
use <../stem_core.scad>

coupler_len = 16;
motor_coupler();

module motor_coupler(L = coupler_len) {
    mdepth = motor_shaft_len - 0.3;           // motor side bore depth
    difference() {
        rcyl(hub_d, L, top = 0.8, bottom = chamfer);
        // 3 mm shaft side (bottom) with standard set screw
        hub_cuts(0, L - mdepth - 0.6, hub_d, 2 * (L - mdepth - 0.6) / 2, bore = shaft_fixed_bore, set_screw = false);
        translate([0, 0, (L - mdepth) / 2]) teardrop_x(screw_clear_d, hub_d, center = false);
        nr = shaft_fixed_bore / 2 + (hub_d / 2 - shaft_fixed_bore / 2) / 2;
        translate([nr - nut_slot_t / 2, -nut_pocket_af / 2, (L - mdepth) / 2 - nut_pocket_af / cos(30) / 2 - 0.1])
            cube([nut_slot_t, nut_pocket_af, L]);
        // 2 mm motor side (top), press fit
        translate([0, 0, L - mdepth]) cylinder(d = motor_shaft_bore, h = mdepth + 1);
        translate([0, 0, L - 0.5]) cylinder(d1 = motor_shaft_bore, d2 = motor_shaft_bore + 1, h = 0.51);
    }
}
